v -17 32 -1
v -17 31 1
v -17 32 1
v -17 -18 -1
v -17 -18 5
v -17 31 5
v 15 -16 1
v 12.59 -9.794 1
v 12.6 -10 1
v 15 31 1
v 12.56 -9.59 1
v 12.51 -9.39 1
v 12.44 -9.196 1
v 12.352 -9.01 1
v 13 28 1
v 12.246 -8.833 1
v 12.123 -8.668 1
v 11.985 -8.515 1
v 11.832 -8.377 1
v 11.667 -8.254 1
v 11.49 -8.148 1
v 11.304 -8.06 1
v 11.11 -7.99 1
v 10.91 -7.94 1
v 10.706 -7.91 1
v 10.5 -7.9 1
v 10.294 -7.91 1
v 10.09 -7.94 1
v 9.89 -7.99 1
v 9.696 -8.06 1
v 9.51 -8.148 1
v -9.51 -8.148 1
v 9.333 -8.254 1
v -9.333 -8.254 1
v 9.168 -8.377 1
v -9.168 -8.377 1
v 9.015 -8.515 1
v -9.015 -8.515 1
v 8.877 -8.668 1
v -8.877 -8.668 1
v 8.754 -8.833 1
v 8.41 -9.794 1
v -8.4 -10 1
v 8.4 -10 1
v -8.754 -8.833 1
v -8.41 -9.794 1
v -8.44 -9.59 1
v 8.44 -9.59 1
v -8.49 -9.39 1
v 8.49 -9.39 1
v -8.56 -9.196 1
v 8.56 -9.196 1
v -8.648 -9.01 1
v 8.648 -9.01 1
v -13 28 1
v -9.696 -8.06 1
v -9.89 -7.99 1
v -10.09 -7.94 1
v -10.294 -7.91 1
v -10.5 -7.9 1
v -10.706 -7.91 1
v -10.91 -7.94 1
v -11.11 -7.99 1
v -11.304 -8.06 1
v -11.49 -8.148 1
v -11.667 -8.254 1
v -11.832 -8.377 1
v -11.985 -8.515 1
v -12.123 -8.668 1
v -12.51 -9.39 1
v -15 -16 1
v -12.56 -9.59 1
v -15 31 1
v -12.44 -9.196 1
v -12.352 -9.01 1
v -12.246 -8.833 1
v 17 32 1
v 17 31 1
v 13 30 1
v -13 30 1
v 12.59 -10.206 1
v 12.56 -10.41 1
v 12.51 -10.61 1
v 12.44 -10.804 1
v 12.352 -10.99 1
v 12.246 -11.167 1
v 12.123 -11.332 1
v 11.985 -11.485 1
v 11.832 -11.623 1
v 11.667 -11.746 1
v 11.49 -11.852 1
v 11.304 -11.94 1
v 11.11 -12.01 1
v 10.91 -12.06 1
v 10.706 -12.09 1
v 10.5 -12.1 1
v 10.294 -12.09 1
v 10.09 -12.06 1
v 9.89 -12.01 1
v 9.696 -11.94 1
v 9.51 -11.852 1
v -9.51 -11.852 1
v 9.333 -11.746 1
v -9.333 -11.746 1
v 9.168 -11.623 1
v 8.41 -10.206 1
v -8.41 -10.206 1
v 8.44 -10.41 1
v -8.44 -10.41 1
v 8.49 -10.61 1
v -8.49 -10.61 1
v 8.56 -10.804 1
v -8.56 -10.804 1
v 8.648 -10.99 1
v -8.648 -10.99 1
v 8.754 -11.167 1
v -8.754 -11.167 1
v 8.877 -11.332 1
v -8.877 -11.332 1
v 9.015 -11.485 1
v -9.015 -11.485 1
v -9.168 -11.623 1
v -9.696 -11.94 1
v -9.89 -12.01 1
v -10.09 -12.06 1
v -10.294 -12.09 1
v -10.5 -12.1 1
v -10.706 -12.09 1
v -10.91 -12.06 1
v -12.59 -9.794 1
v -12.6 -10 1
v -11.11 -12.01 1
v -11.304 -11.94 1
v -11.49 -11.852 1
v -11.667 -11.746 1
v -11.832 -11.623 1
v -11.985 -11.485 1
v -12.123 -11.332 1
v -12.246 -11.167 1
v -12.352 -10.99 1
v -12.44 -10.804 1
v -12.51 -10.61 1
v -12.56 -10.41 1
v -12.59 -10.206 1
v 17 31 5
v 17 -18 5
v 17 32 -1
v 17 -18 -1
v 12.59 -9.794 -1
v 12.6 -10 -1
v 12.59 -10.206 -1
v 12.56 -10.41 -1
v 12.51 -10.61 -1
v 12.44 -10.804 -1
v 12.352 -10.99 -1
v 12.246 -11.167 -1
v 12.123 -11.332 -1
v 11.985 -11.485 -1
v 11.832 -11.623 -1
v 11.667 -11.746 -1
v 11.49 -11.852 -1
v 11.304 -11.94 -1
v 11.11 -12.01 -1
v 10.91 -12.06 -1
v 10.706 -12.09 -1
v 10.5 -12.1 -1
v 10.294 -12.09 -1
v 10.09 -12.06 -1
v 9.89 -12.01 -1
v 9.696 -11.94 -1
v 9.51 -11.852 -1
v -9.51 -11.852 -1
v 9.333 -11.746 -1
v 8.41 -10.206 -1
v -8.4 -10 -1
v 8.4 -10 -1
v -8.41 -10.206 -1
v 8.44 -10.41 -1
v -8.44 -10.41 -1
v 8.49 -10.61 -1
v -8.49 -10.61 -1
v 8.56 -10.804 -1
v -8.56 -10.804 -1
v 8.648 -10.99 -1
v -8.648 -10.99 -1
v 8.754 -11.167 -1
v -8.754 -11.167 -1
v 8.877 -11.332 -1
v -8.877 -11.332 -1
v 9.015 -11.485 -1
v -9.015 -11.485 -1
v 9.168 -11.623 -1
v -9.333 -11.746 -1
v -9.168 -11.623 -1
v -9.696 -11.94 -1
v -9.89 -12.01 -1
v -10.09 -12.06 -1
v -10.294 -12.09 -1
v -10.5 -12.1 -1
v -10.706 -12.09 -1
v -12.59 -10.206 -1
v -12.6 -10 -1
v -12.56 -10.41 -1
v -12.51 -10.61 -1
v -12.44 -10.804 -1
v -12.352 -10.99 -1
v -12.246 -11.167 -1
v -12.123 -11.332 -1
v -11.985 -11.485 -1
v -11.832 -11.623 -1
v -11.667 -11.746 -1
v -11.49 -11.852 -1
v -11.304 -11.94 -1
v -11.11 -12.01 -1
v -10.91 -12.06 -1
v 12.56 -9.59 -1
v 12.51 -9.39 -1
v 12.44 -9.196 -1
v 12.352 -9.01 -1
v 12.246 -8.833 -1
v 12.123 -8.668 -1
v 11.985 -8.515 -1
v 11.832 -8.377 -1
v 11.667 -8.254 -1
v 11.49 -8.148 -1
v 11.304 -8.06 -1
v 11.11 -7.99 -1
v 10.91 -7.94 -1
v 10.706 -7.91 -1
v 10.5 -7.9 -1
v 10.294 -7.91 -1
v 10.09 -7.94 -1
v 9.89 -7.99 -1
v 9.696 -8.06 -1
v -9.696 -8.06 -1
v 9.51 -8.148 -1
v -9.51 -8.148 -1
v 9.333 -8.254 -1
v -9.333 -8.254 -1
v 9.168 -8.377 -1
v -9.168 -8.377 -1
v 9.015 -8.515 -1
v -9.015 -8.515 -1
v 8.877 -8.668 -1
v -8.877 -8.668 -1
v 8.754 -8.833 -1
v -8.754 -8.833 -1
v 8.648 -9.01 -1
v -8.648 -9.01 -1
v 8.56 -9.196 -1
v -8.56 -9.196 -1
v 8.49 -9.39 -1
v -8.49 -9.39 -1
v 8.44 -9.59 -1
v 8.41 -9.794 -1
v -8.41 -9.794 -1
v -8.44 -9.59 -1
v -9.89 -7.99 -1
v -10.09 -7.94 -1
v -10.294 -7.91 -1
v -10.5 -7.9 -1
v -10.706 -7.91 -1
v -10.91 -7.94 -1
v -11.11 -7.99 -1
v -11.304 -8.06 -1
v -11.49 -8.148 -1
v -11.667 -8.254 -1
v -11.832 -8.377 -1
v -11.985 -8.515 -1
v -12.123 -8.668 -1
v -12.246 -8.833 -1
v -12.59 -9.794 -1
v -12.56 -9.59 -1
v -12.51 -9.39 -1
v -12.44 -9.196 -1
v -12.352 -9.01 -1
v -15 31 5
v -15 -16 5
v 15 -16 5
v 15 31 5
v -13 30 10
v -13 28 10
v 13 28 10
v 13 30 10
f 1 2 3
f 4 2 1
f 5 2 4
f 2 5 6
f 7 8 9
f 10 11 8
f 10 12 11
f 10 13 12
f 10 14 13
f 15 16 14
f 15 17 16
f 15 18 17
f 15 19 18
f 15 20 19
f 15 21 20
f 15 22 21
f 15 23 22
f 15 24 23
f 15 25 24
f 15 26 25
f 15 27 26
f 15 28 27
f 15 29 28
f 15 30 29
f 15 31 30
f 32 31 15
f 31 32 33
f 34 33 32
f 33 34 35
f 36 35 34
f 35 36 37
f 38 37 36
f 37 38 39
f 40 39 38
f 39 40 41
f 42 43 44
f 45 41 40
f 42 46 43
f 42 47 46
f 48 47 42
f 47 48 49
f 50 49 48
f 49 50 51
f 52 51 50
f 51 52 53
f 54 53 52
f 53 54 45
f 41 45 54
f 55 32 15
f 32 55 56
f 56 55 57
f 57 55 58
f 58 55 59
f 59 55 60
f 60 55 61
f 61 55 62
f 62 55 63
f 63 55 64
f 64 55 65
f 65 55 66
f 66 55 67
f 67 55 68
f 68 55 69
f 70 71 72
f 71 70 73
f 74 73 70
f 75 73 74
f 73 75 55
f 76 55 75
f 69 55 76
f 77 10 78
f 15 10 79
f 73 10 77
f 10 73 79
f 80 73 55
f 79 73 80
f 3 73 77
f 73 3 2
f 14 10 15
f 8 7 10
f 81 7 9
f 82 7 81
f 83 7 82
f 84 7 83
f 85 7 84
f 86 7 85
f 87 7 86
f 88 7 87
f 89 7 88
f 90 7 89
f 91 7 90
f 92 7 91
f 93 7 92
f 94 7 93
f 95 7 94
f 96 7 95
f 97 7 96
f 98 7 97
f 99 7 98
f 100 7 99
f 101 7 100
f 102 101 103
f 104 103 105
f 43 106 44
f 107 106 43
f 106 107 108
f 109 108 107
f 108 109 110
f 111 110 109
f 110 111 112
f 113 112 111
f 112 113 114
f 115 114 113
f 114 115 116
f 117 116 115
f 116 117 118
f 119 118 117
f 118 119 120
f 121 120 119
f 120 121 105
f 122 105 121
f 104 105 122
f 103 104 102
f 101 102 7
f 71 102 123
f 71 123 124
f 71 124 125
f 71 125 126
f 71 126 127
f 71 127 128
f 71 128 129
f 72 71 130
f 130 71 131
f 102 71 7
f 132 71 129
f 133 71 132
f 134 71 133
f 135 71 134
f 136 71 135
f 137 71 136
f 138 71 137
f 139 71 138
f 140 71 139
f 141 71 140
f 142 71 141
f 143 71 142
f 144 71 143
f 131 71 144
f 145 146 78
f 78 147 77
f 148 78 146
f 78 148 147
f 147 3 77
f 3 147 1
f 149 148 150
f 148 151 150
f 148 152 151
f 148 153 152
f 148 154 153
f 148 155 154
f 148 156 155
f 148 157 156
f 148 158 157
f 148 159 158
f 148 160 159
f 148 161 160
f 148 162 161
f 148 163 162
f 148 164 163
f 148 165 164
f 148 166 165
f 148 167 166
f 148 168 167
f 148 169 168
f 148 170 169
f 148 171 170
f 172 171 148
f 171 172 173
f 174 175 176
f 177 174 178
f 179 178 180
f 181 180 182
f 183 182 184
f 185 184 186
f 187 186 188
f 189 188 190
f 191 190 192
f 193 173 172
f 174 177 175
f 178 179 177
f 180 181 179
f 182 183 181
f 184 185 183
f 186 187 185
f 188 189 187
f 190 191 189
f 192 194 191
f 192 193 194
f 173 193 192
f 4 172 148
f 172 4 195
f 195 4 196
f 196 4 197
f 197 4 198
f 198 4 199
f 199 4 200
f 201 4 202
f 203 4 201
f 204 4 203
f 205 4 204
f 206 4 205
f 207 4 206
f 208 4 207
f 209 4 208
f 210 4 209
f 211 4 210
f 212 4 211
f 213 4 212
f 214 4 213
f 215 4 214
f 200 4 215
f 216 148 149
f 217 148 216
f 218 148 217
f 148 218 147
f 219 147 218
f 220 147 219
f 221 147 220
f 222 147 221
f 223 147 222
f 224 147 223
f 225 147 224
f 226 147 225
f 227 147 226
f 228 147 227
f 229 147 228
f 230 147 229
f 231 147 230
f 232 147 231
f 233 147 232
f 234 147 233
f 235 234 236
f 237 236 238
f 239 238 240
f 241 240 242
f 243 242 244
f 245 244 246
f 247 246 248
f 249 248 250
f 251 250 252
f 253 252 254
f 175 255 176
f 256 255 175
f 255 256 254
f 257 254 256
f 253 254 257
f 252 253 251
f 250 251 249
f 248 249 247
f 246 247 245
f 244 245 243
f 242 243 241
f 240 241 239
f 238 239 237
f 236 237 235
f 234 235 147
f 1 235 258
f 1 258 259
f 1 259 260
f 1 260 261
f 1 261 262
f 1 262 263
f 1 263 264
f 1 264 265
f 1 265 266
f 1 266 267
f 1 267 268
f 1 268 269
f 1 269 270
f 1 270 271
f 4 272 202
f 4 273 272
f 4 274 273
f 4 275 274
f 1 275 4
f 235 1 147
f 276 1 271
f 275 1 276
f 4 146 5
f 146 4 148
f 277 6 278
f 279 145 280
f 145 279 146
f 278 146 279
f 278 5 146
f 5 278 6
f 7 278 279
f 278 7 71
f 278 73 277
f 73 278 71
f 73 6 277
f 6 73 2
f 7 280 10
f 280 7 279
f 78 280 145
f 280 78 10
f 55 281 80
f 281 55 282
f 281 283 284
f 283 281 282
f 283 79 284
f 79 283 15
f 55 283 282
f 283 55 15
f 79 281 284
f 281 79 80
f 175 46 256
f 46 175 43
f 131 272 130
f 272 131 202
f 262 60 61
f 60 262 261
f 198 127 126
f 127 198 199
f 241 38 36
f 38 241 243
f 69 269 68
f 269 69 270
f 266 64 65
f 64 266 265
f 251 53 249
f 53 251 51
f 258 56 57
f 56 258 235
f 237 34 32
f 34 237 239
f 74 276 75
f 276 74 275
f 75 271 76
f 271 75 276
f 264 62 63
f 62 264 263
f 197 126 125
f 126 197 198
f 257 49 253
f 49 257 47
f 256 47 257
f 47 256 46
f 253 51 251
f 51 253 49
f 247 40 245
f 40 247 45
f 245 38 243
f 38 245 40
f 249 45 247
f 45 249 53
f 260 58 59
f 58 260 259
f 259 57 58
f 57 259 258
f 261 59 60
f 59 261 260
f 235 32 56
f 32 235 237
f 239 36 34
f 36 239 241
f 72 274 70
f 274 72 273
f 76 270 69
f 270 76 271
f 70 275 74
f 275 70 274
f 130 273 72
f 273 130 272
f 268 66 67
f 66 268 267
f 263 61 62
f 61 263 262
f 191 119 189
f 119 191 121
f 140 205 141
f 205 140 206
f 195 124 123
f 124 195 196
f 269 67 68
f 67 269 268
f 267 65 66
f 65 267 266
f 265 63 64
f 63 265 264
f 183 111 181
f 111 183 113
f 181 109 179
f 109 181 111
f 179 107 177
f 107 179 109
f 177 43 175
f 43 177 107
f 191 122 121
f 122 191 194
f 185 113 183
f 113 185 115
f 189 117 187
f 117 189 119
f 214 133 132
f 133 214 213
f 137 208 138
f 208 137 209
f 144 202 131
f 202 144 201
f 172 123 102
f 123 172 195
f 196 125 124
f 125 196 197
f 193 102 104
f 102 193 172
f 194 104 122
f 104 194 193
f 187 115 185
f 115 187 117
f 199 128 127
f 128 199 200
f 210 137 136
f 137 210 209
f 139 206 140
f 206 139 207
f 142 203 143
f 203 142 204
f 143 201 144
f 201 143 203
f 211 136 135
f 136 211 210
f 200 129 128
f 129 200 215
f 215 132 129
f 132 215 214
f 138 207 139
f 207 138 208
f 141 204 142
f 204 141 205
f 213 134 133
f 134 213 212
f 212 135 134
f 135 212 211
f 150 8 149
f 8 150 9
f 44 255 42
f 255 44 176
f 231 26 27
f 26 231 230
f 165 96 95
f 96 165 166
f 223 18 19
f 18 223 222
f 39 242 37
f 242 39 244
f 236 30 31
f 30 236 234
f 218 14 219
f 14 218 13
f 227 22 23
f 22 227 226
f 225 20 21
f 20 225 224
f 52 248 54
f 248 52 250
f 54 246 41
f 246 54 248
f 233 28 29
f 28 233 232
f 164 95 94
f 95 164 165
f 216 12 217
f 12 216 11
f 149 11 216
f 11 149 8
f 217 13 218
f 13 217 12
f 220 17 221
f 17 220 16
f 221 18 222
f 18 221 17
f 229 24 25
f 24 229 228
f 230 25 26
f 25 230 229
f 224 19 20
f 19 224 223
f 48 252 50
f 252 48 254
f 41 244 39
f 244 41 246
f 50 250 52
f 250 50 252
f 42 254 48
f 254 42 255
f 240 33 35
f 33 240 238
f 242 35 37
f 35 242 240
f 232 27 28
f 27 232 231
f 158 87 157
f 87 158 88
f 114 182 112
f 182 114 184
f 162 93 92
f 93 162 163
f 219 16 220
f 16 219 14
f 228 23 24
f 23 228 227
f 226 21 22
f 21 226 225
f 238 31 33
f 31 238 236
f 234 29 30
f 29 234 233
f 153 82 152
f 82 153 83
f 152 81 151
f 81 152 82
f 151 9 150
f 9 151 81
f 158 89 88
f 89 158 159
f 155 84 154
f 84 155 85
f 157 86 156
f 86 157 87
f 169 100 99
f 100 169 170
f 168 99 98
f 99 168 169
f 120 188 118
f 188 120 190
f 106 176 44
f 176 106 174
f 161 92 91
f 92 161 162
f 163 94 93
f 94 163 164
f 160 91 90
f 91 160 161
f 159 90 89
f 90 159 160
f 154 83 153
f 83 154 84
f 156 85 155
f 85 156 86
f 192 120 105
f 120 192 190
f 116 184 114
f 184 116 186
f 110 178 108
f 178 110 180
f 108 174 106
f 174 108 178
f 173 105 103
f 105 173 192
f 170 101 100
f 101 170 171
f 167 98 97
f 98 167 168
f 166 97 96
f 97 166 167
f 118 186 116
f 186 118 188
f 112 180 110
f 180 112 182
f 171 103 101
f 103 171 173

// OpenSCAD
// Definition size of housing
// **************************

length =140;
width      = 75;    
height      = 10;     
studheight    = 10;

cutoutlength = 110;
cutoutwidth = 52;

flangewidth = 22;
flangeheight = 4;



//Definition of circle angular resolution
resol        = 64;           // Identical to housing !!!



difference () {
    
    union() {
        translate ([0,7,0]) cube ([34,50,2], center=true);
        /*translate ([0,0,0]) cube ([70,8,30], center=true);*/

        translate ([0,-17,3]) cube ([34,2,4], center=true);
        translate ([-16,7,3]) cube ([2,48,4], center=true);
        translate ([16,7,3]) cube ([2,48,4], center=true);
        translate ([0,29,5]) cube ([26,2,10], center=true);

        


    }
    

        translate ([-10.5,-10,-1]) cylinder (h=42, r=2.1, $fn=resol); //
        translate ([10.5,-10,-1]) cylinder (h=42, r=2.1, $fn=resol); //
    


}
